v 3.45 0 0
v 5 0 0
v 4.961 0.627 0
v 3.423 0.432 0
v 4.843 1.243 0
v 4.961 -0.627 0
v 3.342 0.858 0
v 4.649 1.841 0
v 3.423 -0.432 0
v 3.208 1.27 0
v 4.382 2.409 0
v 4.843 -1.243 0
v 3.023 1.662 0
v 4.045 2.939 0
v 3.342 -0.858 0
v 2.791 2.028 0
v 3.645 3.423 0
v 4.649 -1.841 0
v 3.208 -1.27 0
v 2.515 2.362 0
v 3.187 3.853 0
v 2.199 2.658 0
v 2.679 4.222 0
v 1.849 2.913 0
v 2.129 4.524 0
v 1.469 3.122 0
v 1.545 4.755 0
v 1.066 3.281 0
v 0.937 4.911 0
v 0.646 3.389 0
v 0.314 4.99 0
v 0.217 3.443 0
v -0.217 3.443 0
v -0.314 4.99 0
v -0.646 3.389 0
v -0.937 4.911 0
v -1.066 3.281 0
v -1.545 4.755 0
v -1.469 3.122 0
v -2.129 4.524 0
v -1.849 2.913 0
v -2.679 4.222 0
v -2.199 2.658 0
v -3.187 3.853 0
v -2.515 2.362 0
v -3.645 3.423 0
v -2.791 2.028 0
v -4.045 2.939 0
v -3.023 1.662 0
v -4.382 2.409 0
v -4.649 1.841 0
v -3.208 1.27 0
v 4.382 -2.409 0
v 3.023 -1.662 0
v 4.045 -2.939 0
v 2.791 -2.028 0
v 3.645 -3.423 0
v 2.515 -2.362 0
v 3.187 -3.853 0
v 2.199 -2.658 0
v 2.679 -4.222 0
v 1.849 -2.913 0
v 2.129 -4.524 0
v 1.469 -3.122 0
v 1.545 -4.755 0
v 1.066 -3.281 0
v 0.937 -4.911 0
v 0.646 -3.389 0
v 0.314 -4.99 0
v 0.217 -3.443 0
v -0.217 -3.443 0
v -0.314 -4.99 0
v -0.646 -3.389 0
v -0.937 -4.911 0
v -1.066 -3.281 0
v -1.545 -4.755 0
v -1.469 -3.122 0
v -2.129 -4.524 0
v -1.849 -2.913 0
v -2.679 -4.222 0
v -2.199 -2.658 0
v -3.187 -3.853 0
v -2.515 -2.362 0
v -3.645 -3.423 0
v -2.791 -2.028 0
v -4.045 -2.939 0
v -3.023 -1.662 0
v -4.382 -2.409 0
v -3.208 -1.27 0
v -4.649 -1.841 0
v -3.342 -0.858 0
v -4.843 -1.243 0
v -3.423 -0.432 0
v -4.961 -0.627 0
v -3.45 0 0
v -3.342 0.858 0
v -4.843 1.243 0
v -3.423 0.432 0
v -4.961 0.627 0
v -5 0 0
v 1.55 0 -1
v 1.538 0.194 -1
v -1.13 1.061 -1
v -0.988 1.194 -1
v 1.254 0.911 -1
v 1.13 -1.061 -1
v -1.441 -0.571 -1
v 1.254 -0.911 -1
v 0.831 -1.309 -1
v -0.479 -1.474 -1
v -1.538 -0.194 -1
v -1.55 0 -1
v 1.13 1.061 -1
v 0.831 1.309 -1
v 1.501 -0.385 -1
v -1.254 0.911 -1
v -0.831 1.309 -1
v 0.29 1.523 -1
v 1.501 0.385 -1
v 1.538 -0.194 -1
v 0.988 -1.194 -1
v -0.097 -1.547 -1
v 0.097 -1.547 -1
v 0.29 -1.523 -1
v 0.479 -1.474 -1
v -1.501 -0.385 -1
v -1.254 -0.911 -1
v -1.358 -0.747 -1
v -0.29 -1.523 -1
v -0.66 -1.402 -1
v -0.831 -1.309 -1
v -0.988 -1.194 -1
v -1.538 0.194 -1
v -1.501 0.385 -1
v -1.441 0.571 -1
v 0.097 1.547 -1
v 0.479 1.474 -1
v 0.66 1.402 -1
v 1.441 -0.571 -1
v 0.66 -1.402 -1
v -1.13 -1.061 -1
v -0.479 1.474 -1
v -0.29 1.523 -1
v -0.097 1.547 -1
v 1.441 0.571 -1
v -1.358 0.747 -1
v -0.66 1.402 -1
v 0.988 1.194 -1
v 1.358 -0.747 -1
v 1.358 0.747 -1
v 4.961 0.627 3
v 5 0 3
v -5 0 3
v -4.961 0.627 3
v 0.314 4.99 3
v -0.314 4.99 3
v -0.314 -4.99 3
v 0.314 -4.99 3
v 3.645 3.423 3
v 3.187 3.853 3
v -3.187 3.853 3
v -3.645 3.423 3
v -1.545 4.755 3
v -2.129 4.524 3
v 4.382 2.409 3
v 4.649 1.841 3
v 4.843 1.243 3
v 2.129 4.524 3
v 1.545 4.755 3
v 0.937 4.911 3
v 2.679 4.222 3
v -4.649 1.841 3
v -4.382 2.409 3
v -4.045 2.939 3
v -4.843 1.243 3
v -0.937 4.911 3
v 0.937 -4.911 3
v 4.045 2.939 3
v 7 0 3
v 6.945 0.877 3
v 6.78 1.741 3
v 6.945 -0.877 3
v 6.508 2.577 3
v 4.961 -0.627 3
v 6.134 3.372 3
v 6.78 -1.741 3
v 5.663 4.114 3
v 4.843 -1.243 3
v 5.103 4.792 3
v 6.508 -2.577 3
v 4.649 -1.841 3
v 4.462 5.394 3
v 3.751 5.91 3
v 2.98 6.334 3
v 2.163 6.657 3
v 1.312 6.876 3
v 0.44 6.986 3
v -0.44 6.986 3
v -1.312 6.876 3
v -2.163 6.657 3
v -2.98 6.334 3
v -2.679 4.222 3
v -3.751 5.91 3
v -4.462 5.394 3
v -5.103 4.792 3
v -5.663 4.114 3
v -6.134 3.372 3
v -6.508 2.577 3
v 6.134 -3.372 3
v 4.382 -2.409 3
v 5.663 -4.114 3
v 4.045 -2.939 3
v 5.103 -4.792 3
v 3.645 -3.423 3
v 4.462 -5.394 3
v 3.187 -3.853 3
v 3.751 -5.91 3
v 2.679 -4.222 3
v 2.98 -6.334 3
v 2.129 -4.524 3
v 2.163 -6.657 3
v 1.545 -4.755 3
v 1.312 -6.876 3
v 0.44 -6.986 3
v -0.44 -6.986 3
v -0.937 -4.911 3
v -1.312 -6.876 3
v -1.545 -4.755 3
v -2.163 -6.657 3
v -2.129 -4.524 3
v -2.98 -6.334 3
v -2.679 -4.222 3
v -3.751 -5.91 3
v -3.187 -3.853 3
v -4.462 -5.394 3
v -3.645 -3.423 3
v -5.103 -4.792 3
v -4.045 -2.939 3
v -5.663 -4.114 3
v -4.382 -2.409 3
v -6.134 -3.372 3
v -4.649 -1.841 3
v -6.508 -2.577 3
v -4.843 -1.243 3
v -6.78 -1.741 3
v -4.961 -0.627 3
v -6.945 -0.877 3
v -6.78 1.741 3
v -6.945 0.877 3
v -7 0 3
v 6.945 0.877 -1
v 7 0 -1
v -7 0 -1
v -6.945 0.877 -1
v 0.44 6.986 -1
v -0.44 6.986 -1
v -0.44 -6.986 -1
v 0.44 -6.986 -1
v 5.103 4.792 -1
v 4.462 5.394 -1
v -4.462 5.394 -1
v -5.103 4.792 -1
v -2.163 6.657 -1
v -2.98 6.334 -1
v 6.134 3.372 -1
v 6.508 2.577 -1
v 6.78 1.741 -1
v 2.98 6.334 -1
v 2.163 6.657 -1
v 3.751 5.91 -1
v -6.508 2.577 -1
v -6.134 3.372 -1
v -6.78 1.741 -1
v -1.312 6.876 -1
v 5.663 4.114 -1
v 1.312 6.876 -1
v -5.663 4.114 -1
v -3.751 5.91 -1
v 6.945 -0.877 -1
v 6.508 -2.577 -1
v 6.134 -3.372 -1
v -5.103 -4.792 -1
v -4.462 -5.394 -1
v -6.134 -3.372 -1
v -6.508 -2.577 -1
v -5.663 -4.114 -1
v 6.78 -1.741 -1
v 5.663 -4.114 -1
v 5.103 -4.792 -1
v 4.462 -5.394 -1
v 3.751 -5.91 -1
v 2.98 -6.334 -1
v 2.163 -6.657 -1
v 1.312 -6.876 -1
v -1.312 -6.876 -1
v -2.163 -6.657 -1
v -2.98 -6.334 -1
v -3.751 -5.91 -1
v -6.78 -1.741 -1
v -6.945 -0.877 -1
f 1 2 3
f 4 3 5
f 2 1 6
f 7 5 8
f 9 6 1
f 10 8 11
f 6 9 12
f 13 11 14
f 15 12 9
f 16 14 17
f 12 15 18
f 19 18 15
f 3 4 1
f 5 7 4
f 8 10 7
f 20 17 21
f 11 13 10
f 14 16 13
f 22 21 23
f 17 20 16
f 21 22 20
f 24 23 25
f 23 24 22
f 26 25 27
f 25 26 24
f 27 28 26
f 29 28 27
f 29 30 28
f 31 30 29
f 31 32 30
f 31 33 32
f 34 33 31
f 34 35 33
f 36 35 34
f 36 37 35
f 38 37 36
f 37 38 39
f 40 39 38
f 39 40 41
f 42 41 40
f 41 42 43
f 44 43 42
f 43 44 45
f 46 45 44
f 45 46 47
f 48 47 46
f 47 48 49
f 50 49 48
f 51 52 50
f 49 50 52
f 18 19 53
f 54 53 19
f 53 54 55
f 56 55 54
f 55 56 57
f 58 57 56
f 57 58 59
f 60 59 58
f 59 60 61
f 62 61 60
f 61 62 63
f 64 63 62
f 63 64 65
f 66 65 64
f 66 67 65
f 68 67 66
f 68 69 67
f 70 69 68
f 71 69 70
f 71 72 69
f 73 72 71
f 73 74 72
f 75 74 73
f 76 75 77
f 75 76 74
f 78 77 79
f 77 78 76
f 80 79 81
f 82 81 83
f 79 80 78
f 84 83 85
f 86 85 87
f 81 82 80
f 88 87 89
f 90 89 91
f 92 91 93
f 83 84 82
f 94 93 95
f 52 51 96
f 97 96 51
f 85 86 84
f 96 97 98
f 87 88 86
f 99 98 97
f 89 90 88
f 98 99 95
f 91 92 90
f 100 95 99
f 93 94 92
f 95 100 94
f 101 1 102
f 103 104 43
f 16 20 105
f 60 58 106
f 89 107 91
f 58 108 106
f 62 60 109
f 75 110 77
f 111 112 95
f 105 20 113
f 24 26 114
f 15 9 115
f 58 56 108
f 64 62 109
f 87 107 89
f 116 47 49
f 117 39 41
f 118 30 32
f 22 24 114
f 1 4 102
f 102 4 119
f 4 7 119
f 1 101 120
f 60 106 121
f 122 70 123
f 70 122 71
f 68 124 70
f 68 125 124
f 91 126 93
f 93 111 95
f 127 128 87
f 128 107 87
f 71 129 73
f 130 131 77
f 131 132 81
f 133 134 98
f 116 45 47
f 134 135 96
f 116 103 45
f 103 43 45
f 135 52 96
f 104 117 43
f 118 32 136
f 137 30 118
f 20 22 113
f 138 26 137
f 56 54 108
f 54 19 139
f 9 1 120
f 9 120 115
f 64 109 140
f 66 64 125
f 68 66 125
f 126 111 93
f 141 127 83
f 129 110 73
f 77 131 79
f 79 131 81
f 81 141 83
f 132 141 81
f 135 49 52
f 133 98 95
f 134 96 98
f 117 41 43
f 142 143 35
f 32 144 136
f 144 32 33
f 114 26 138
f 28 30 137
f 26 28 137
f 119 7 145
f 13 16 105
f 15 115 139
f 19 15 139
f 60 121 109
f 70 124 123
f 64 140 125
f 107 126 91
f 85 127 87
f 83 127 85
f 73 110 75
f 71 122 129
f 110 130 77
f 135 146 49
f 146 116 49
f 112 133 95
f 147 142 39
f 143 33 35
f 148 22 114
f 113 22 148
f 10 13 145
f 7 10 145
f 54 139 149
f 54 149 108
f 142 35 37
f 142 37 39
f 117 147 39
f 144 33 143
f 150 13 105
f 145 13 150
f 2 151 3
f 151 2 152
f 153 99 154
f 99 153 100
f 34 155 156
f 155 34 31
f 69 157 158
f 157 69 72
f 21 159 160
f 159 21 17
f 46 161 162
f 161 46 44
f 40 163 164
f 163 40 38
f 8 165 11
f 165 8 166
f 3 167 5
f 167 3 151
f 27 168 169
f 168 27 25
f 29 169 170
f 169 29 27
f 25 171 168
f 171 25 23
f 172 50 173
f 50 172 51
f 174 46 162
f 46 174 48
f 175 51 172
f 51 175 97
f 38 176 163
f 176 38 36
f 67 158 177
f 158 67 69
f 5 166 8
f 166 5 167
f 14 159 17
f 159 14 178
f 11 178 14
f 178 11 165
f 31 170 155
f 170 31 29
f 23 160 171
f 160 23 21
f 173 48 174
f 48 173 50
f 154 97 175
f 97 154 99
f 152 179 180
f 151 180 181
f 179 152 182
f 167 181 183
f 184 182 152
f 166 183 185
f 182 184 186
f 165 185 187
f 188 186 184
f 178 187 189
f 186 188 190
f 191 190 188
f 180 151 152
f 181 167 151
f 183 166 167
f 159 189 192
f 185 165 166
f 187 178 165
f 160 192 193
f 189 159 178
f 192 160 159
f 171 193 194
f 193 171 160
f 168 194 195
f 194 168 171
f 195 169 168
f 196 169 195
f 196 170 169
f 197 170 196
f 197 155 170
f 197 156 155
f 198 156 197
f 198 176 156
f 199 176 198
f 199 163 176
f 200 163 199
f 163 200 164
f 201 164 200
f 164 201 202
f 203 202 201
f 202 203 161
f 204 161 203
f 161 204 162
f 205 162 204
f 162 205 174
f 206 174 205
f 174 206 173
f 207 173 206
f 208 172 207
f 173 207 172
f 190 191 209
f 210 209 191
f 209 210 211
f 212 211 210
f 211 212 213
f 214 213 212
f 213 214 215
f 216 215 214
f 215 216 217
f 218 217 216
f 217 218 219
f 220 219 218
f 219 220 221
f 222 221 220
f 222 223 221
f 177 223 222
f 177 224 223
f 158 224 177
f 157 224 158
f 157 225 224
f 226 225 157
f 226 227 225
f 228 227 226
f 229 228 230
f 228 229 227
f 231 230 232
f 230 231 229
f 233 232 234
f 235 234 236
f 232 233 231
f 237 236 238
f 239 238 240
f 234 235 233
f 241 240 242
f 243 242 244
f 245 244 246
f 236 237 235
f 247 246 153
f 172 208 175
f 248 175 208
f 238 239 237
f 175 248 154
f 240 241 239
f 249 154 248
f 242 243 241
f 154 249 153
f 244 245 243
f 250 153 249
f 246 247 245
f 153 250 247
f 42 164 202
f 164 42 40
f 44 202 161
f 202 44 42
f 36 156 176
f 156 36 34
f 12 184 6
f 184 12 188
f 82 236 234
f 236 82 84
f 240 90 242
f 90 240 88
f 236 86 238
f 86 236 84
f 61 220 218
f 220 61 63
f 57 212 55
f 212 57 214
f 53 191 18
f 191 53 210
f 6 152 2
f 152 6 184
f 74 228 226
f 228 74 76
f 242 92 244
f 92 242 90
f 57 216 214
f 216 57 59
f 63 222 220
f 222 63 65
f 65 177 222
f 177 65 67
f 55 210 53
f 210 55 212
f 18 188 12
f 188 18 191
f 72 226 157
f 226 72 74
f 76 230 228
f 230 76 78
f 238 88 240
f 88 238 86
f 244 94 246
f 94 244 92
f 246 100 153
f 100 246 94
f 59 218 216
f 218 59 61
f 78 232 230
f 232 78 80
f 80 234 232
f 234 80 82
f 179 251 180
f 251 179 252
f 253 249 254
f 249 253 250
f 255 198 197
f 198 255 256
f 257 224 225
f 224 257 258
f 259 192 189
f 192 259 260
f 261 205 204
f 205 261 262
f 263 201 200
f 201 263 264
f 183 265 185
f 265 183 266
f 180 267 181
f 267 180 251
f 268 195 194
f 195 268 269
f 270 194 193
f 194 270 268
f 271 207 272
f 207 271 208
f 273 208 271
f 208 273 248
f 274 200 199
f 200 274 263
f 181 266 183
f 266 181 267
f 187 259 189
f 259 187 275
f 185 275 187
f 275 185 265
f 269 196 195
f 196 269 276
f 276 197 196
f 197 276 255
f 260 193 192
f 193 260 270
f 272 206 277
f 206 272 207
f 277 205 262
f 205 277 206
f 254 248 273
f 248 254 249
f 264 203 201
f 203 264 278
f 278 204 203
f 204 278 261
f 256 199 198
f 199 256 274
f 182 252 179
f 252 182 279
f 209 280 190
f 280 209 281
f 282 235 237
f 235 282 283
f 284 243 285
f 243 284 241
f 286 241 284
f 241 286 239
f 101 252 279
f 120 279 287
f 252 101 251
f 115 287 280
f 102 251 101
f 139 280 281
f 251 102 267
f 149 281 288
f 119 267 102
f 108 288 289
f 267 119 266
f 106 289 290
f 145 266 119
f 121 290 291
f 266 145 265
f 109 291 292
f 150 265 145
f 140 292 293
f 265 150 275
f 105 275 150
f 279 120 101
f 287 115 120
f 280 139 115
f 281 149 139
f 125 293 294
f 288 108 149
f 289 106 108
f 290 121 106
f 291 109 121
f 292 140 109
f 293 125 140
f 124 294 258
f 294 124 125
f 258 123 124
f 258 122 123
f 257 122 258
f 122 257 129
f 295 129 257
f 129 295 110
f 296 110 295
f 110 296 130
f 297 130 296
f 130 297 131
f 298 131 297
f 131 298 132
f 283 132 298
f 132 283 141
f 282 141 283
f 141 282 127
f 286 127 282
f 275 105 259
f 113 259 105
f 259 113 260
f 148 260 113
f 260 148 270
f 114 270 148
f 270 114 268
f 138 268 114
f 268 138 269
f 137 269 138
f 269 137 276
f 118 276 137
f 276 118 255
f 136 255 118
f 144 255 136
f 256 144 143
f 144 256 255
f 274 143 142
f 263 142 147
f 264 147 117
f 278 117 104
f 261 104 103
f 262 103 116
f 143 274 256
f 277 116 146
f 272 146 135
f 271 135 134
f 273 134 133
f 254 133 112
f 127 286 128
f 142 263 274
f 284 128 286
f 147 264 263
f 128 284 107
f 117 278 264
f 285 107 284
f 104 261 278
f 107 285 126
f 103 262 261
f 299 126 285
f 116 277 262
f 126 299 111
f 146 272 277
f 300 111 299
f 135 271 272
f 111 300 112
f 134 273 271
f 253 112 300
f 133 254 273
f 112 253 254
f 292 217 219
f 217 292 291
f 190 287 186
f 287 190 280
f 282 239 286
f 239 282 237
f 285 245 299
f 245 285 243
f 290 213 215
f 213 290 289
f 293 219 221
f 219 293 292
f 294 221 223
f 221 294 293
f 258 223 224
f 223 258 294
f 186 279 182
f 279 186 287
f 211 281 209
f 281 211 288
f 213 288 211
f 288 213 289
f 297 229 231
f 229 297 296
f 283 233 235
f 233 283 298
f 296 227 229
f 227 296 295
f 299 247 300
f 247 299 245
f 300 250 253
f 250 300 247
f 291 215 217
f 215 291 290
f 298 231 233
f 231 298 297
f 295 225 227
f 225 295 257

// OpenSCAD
$fn = 50;

difference() {
	union() {
		translate(v = [0, 0, -1.0]) {
			cylinder(h = 4.0, r = 7.0);
		}
	}
	union() {
		translate(v = [0, 0, 0]) {
			rotate(a = [0, 0, 0]) {
				difference() {
					union() {
						translate(v = [0, 0, -4.0]) {
							cylinder(h = 4.0, r = 1.25);
						}
						translate(v = [0, 0, -1.0]) {
							cylinder(h = 1.0, r1 = 1.55, r2 = 3.45);
						}
						translate(v = [0, 0, -4.0]) {
							cylinder(h = 4.0, r = 1.55);
						}
						translate(v = [0, 0, -4.0]) {
							cylinder(h = 4.0, r = 1.25);
						}
					}
					union();
				}
			}
		}
		#cylinder(h = 3, r = 5.0);
	}
}
